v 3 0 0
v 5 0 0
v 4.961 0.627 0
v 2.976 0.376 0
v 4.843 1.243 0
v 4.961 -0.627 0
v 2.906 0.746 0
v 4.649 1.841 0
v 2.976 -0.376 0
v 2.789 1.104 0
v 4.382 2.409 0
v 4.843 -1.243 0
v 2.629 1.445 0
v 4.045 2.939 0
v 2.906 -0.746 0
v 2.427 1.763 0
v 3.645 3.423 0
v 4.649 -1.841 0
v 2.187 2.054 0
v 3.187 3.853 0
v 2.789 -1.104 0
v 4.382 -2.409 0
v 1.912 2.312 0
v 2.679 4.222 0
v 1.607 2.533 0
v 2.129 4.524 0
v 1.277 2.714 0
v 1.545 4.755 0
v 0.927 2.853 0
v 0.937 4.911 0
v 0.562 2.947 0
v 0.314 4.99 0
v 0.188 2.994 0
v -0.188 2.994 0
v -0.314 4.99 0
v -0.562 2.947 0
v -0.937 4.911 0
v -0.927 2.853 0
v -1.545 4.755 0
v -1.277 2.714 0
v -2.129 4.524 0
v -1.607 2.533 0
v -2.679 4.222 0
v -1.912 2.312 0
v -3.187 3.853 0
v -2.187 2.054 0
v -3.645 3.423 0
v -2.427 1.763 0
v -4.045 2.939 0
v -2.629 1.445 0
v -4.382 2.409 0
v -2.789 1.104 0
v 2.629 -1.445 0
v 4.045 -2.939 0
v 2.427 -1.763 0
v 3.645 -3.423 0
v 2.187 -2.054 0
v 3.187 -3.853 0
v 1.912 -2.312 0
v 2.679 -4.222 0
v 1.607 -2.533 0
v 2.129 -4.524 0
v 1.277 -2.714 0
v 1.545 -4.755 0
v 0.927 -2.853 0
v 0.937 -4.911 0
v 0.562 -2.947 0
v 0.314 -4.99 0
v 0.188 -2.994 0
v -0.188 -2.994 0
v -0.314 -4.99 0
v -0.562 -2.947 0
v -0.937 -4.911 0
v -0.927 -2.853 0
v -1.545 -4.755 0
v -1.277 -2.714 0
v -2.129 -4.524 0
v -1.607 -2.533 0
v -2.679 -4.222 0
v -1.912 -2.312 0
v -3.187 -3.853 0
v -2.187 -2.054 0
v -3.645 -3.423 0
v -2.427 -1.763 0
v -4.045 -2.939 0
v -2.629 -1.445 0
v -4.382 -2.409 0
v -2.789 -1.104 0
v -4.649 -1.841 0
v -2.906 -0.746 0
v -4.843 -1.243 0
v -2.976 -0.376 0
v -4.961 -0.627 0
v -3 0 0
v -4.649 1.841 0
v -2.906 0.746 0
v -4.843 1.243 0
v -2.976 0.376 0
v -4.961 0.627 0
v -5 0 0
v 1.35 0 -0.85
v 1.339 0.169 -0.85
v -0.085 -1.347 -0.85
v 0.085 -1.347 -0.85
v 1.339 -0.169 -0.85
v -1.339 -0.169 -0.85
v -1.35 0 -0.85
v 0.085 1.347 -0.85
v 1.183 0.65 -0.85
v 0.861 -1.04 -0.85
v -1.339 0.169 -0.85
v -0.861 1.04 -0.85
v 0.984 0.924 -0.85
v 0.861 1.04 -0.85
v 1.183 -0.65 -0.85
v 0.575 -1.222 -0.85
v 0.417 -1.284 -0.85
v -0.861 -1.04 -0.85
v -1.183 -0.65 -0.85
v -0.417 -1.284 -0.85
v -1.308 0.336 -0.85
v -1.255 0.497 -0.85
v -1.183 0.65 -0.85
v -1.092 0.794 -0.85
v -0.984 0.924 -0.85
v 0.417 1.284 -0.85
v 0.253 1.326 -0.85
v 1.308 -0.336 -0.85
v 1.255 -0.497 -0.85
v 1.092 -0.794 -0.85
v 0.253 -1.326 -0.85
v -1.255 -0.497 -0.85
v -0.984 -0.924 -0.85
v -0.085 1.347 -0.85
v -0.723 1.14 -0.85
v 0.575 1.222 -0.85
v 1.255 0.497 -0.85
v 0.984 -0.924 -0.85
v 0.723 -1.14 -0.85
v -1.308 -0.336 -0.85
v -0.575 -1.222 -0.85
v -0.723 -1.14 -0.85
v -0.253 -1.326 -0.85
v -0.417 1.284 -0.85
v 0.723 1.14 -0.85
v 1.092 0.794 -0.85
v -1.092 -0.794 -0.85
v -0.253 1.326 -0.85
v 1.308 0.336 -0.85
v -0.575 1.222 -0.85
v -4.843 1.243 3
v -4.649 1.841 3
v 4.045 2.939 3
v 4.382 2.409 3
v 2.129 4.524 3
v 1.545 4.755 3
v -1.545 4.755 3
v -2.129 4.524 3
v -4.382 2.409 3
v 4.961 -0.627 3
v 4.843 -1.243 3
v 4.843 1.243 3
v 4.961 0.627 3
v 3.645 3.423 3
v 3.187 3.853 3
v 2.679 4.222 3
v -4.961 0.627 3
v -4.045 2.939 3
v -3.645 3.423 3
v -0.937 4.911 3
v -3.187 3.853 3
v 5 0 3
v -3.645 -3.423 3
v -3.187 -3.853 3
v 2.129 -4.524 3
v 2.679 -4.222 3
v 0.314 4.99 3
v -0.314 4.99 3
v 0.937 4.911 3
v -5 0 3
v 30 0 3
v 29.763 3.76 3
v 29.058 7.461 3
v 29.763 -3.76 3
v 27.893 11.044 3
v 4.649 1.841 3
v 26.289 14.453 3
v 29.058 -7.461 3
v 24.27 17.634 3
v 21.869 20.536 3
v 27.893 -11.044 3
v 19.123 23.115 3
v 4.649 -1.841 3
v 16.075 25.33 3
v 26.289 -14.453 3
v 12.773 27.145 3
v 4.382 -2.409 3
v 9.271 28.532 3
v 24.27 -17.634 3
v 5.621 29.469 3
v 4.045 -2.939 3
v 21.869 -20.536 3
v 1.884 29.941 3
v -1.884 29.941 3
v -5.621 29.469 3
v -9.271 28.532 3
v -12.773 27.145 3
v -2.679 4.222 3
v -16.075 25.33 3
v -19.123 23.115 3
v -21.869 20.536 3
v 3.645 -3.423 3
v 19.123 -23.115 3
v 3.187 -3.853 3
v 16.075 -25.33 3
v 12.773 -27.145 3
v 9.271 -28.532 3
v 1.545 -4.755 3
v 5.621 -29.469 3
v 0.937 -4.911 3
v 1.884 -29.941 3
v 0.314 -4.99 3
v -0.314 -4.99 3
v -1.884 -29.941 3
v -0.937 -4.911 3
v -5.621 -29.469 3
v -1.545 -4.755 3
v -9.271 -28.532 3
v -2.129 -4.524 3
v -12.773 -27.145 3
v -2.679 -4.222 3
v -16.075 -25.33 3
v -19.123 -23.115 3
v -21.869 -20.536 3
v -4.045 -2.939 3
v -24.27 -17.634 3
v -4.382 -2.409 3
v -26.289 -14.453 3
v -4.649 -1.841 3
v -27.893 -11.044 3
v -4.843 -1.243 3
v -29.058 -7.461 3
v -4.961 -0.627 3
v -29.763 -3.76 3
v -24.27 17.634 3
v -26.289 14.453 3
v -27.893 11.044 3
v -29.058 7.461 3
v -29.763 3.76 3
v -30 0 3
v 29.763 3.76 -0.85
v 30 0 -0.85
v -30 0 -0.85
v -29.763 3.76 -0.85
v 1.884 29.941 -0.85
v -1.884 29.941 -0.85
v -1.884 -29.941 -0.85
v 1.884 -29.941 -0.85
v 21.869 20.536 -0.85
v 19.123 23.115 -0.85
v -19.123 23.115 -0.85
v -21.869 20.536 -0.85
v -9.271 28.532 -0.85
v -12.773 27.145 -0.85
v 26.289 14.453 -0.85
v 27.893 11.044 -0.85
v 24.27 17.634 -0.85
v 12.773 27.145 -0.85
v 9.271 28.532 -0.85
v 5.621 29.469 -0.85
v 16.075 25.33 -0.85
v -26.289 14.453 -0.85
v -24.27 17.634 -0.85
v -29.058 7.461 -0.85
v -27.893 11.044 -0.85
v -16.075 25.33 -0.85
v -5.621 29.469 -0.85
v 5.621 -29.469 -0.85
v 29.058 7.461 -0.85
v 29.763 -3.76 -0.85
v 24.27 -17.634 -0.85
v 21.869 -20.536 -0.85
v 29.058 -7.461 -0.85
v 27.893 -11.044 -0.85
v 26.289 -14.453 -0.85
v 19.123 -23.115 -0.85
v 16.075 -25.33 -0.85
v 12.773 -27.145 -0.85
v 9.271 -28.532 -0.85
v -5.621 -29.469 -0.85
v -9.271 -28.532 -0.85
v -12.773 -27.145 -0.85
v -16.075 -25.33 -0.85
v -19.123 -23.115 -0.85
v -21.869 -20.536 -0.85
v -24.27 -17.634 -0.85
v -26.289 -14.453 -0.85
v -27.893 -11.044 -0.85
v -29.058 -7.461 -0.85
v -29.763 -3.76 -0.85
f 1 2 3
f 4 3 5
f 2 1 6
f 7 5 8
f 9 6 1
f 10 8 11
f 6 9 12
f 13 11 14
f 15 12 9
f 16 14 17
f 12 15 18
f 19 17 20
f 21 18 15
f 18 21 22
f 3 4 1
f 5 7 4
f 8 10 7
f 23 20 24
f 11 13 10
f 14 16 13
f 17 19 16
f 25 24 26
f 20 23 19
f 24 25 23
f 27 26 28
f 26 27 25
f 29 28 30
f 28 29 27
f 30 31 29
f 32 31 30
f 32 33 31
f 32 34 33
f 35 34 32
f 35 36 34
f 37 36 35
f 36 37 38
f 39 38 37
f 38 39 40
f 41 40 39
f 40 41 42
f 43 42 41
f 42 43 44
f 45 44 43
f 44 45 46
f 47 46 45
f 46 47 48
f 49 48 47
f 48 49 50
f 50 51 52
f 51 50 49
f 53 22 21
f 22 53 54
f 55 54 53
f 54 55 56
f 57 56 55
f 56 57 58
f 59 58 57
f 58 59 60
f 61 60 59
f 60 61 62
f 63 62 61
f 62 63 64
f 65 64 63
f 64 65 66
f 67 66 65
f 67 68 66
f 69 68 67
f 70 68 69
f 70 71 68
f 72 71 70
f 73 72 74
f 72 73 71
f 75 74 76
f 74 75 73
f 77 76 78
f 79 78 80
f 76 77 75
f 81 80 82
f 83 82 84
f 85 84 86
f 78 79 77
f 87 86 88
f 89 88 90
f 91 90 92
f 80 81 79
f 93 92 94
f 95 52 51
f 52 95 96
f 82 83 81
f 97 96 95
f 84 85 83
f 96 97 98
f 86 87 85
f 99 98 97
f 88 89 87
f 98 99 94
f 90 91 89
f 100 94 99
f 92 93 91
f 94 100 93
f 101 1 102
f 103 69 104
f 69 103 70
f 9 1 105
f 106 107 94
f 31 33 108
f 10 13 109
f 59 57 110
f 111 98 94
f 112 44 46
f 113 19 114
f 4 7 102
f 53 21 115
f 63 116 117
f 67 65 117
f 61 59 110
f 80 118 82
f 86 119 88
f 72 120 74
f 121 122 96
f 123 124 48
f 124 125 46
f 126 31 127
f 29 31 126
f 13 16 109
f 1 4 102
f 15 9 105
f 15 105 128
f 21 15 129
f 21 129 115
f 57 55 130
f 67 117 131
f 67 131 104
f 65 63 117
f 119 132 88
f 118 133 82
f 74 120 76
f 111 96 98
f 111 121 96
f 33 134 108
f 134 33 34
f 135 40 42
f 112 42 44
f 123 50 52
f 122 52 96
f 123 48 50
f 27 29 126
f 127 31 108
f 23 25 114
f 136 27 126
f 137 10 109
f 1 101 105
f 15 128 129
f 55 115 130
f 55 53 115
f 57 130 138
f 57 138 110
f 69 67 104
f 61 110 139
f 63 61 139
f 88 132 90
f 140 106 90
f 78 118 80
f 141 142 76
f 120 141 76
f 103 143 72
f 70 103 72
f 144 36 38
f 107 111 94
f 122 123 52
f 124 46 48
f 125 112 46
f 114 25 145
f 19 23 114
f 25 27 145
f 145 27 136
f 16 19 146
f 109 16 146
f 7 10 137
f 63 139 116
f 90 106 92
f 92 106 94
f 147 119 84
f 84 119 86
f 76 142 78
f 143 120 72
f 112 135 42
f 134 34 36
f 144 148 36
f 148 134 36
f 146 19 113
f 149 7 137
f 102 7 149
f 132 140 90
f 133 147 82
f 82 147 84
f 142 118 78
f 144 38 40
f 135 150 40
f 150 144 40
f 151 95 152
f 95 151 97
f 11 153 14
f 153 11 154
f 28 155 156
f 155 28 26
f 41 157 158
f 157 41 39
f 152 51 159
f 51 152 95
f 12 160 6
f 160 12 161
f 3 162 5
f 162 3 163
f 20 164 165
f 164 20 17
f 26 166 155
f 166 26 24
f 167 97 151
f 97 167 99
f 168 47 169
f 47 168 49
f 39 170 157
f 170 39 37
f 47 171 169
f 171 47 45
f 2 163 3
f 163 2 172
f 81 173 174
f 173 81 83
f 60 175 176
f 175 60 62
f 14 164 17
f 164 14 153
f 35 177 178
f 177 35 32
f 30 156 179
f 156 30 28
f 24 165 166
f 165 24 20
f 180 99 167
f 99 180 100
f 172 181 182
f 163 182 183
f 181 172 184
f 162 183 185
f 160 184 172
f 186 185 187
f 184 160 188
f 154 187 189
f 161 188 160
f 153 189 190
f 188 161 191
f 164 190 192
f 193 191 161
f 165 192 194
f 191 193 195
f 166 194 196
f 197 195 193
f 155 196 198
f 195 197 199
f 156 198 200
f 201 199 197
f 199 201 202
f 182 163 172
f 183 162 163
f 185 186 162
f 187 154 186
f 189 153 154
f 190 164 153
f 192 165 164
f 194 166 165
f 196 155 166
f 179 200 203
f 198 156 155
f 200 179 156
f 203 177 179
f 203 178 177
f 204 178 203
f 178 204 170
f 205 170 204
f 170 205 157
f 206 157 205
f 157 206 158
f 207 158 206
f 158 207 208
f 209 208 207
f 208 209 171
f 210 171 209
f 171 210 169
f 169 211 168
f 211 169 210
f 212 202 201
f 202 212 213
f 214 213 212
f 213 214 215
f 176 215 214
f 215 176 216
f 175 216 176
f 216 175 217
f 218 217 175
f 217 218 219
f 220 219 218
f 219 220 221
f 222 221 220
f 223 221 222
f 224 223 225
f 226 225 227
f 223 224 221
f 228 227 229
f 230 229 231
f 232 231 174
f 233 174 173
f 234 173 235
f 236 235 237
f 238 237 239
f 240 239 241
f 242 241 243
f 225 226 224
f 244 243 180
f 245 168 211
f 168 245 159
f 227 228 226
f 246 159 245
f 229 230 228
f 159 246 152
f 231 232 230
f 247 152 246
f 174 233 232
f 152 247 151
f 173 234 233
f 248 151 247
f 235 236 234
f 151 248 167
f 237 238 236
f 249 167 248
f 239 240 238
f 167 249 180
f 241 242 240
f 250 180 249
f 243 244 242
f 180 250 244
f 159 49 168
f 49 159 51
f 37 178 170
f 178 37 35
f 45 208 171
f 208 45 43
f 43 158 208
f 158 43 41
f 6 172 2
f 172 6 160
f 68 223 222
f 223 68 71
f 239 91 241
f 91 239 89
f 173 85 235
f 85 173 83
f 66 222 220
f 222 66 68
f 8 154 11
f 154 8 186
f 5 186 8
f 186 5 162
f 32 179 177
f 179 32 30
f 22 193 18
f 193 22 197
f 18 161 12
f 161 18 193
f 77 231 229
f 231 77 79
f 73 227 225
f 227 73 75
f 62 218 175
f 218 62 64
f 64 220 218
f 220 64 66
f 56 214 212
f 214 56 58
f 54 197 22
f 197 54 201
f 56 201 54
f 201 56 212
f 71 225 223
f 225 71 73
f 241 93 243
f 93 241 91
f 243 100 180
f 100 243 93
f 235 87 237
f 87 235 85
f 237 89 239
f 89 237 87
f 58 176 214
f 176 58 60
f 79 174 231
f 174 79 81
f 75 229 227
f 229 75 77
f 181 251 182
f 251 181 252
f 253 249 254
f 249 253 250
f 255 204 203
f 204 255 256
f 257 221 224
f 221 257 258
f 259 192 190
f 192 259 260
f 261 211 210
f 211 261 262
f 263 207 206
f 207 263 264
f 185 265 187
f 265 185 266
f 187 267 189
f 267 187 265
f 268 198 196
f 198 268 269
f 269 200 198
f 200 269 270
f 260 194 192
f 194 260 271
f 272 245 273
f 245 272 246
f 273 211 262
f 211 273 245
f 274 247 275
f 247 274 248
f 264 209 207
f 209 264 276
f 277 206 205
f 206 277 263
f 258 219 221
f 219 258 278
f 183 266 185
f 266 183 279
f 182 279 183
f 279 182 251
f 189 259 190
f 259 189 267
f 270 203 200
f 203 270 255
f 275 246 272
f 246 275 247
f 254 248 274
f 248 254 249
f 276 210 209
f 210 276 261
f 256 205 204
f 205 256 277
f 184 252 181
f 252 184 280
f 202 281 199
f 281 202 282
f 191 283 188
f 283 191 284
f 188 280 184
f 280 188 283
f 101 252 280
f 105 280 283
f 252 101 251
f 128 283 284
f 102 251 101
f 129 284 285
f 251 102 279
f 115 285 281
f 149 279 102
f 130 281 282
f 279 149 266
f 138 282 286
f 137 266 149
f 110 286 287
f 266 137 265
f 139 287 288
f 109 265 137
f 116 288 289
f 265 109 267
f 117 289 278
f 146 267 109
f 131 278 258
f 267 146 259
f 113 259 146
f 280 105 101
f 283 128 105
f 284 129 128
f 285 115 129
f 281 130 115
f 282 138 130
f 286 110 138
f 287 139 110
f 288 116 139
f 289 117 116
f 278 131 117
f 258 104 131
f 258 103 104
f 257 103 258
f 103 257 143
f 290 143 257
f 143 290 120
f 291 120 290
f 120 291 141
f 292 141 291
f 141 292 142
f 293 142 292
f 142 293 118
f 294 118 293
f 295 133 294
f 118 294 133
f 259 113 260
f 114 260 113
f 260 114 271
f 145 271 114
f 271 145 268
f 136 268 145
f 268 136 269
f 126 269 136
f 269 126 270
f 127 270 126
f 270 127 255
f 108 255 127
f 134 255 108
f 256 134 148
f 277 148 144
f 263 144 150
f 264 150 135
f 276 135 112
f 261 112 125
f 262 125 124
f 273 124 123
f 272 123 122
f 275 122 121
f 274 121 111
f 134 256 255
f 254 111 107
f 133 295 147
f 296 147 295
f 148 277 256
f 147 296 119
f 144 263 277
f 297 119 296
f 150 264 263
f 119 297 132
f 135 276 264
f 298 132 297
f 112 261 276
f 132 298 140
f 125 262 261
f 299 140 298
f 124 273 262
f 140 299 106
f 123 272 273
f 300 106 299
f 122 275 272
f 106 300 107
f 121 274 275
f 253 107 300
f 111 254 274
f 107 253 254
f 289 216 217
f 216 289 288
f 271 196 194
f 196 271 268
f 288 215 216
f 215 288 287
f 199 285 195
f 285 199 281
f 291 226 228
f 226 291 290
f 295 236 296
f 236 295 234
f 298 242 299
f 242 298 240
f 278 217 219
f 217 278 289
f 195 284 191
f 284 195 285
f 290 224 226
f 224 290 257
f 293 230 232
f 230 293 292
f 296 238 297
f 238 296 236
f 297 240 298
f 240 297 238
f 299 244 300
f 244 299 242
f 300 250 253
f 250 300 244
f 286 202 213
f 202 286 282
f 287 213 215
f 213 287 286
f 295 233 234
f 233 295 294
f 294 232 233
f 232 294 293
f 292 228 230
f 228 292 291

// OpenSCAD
$fn = 50;

difference() {
	union() {
		translate(v = [0, 0, -0.8500000000000001]) {
			cylinder(h = 3.85, r = 30.0);
		}
	}
	union() {
		translate(v = [0, 0, 0]) {
			rotate(a = [0, 0, 0]) {
				difference() {
					union() {
						translate(v = [0, 0, -3.85]) {
							cylinder(h = 3.85, r = 1.0);
						}
						translate(v = [0, 0, -0.85]) {
							cylinder(h = 0.85, r1 = 1.35, r2 = 3.0);
						}
						translate(v = [0, 0, -3.85]) {
							cylinder(h = 3.85, r = 1.35);
						}
						translate(v = [0, 0, -3.85]) {
							cylinder(h = 3.85, r = 1.0);
						}
					}
					union();
				}
			}
		}
		#cylinder(h = 3, r = 5.0);
	}
}
